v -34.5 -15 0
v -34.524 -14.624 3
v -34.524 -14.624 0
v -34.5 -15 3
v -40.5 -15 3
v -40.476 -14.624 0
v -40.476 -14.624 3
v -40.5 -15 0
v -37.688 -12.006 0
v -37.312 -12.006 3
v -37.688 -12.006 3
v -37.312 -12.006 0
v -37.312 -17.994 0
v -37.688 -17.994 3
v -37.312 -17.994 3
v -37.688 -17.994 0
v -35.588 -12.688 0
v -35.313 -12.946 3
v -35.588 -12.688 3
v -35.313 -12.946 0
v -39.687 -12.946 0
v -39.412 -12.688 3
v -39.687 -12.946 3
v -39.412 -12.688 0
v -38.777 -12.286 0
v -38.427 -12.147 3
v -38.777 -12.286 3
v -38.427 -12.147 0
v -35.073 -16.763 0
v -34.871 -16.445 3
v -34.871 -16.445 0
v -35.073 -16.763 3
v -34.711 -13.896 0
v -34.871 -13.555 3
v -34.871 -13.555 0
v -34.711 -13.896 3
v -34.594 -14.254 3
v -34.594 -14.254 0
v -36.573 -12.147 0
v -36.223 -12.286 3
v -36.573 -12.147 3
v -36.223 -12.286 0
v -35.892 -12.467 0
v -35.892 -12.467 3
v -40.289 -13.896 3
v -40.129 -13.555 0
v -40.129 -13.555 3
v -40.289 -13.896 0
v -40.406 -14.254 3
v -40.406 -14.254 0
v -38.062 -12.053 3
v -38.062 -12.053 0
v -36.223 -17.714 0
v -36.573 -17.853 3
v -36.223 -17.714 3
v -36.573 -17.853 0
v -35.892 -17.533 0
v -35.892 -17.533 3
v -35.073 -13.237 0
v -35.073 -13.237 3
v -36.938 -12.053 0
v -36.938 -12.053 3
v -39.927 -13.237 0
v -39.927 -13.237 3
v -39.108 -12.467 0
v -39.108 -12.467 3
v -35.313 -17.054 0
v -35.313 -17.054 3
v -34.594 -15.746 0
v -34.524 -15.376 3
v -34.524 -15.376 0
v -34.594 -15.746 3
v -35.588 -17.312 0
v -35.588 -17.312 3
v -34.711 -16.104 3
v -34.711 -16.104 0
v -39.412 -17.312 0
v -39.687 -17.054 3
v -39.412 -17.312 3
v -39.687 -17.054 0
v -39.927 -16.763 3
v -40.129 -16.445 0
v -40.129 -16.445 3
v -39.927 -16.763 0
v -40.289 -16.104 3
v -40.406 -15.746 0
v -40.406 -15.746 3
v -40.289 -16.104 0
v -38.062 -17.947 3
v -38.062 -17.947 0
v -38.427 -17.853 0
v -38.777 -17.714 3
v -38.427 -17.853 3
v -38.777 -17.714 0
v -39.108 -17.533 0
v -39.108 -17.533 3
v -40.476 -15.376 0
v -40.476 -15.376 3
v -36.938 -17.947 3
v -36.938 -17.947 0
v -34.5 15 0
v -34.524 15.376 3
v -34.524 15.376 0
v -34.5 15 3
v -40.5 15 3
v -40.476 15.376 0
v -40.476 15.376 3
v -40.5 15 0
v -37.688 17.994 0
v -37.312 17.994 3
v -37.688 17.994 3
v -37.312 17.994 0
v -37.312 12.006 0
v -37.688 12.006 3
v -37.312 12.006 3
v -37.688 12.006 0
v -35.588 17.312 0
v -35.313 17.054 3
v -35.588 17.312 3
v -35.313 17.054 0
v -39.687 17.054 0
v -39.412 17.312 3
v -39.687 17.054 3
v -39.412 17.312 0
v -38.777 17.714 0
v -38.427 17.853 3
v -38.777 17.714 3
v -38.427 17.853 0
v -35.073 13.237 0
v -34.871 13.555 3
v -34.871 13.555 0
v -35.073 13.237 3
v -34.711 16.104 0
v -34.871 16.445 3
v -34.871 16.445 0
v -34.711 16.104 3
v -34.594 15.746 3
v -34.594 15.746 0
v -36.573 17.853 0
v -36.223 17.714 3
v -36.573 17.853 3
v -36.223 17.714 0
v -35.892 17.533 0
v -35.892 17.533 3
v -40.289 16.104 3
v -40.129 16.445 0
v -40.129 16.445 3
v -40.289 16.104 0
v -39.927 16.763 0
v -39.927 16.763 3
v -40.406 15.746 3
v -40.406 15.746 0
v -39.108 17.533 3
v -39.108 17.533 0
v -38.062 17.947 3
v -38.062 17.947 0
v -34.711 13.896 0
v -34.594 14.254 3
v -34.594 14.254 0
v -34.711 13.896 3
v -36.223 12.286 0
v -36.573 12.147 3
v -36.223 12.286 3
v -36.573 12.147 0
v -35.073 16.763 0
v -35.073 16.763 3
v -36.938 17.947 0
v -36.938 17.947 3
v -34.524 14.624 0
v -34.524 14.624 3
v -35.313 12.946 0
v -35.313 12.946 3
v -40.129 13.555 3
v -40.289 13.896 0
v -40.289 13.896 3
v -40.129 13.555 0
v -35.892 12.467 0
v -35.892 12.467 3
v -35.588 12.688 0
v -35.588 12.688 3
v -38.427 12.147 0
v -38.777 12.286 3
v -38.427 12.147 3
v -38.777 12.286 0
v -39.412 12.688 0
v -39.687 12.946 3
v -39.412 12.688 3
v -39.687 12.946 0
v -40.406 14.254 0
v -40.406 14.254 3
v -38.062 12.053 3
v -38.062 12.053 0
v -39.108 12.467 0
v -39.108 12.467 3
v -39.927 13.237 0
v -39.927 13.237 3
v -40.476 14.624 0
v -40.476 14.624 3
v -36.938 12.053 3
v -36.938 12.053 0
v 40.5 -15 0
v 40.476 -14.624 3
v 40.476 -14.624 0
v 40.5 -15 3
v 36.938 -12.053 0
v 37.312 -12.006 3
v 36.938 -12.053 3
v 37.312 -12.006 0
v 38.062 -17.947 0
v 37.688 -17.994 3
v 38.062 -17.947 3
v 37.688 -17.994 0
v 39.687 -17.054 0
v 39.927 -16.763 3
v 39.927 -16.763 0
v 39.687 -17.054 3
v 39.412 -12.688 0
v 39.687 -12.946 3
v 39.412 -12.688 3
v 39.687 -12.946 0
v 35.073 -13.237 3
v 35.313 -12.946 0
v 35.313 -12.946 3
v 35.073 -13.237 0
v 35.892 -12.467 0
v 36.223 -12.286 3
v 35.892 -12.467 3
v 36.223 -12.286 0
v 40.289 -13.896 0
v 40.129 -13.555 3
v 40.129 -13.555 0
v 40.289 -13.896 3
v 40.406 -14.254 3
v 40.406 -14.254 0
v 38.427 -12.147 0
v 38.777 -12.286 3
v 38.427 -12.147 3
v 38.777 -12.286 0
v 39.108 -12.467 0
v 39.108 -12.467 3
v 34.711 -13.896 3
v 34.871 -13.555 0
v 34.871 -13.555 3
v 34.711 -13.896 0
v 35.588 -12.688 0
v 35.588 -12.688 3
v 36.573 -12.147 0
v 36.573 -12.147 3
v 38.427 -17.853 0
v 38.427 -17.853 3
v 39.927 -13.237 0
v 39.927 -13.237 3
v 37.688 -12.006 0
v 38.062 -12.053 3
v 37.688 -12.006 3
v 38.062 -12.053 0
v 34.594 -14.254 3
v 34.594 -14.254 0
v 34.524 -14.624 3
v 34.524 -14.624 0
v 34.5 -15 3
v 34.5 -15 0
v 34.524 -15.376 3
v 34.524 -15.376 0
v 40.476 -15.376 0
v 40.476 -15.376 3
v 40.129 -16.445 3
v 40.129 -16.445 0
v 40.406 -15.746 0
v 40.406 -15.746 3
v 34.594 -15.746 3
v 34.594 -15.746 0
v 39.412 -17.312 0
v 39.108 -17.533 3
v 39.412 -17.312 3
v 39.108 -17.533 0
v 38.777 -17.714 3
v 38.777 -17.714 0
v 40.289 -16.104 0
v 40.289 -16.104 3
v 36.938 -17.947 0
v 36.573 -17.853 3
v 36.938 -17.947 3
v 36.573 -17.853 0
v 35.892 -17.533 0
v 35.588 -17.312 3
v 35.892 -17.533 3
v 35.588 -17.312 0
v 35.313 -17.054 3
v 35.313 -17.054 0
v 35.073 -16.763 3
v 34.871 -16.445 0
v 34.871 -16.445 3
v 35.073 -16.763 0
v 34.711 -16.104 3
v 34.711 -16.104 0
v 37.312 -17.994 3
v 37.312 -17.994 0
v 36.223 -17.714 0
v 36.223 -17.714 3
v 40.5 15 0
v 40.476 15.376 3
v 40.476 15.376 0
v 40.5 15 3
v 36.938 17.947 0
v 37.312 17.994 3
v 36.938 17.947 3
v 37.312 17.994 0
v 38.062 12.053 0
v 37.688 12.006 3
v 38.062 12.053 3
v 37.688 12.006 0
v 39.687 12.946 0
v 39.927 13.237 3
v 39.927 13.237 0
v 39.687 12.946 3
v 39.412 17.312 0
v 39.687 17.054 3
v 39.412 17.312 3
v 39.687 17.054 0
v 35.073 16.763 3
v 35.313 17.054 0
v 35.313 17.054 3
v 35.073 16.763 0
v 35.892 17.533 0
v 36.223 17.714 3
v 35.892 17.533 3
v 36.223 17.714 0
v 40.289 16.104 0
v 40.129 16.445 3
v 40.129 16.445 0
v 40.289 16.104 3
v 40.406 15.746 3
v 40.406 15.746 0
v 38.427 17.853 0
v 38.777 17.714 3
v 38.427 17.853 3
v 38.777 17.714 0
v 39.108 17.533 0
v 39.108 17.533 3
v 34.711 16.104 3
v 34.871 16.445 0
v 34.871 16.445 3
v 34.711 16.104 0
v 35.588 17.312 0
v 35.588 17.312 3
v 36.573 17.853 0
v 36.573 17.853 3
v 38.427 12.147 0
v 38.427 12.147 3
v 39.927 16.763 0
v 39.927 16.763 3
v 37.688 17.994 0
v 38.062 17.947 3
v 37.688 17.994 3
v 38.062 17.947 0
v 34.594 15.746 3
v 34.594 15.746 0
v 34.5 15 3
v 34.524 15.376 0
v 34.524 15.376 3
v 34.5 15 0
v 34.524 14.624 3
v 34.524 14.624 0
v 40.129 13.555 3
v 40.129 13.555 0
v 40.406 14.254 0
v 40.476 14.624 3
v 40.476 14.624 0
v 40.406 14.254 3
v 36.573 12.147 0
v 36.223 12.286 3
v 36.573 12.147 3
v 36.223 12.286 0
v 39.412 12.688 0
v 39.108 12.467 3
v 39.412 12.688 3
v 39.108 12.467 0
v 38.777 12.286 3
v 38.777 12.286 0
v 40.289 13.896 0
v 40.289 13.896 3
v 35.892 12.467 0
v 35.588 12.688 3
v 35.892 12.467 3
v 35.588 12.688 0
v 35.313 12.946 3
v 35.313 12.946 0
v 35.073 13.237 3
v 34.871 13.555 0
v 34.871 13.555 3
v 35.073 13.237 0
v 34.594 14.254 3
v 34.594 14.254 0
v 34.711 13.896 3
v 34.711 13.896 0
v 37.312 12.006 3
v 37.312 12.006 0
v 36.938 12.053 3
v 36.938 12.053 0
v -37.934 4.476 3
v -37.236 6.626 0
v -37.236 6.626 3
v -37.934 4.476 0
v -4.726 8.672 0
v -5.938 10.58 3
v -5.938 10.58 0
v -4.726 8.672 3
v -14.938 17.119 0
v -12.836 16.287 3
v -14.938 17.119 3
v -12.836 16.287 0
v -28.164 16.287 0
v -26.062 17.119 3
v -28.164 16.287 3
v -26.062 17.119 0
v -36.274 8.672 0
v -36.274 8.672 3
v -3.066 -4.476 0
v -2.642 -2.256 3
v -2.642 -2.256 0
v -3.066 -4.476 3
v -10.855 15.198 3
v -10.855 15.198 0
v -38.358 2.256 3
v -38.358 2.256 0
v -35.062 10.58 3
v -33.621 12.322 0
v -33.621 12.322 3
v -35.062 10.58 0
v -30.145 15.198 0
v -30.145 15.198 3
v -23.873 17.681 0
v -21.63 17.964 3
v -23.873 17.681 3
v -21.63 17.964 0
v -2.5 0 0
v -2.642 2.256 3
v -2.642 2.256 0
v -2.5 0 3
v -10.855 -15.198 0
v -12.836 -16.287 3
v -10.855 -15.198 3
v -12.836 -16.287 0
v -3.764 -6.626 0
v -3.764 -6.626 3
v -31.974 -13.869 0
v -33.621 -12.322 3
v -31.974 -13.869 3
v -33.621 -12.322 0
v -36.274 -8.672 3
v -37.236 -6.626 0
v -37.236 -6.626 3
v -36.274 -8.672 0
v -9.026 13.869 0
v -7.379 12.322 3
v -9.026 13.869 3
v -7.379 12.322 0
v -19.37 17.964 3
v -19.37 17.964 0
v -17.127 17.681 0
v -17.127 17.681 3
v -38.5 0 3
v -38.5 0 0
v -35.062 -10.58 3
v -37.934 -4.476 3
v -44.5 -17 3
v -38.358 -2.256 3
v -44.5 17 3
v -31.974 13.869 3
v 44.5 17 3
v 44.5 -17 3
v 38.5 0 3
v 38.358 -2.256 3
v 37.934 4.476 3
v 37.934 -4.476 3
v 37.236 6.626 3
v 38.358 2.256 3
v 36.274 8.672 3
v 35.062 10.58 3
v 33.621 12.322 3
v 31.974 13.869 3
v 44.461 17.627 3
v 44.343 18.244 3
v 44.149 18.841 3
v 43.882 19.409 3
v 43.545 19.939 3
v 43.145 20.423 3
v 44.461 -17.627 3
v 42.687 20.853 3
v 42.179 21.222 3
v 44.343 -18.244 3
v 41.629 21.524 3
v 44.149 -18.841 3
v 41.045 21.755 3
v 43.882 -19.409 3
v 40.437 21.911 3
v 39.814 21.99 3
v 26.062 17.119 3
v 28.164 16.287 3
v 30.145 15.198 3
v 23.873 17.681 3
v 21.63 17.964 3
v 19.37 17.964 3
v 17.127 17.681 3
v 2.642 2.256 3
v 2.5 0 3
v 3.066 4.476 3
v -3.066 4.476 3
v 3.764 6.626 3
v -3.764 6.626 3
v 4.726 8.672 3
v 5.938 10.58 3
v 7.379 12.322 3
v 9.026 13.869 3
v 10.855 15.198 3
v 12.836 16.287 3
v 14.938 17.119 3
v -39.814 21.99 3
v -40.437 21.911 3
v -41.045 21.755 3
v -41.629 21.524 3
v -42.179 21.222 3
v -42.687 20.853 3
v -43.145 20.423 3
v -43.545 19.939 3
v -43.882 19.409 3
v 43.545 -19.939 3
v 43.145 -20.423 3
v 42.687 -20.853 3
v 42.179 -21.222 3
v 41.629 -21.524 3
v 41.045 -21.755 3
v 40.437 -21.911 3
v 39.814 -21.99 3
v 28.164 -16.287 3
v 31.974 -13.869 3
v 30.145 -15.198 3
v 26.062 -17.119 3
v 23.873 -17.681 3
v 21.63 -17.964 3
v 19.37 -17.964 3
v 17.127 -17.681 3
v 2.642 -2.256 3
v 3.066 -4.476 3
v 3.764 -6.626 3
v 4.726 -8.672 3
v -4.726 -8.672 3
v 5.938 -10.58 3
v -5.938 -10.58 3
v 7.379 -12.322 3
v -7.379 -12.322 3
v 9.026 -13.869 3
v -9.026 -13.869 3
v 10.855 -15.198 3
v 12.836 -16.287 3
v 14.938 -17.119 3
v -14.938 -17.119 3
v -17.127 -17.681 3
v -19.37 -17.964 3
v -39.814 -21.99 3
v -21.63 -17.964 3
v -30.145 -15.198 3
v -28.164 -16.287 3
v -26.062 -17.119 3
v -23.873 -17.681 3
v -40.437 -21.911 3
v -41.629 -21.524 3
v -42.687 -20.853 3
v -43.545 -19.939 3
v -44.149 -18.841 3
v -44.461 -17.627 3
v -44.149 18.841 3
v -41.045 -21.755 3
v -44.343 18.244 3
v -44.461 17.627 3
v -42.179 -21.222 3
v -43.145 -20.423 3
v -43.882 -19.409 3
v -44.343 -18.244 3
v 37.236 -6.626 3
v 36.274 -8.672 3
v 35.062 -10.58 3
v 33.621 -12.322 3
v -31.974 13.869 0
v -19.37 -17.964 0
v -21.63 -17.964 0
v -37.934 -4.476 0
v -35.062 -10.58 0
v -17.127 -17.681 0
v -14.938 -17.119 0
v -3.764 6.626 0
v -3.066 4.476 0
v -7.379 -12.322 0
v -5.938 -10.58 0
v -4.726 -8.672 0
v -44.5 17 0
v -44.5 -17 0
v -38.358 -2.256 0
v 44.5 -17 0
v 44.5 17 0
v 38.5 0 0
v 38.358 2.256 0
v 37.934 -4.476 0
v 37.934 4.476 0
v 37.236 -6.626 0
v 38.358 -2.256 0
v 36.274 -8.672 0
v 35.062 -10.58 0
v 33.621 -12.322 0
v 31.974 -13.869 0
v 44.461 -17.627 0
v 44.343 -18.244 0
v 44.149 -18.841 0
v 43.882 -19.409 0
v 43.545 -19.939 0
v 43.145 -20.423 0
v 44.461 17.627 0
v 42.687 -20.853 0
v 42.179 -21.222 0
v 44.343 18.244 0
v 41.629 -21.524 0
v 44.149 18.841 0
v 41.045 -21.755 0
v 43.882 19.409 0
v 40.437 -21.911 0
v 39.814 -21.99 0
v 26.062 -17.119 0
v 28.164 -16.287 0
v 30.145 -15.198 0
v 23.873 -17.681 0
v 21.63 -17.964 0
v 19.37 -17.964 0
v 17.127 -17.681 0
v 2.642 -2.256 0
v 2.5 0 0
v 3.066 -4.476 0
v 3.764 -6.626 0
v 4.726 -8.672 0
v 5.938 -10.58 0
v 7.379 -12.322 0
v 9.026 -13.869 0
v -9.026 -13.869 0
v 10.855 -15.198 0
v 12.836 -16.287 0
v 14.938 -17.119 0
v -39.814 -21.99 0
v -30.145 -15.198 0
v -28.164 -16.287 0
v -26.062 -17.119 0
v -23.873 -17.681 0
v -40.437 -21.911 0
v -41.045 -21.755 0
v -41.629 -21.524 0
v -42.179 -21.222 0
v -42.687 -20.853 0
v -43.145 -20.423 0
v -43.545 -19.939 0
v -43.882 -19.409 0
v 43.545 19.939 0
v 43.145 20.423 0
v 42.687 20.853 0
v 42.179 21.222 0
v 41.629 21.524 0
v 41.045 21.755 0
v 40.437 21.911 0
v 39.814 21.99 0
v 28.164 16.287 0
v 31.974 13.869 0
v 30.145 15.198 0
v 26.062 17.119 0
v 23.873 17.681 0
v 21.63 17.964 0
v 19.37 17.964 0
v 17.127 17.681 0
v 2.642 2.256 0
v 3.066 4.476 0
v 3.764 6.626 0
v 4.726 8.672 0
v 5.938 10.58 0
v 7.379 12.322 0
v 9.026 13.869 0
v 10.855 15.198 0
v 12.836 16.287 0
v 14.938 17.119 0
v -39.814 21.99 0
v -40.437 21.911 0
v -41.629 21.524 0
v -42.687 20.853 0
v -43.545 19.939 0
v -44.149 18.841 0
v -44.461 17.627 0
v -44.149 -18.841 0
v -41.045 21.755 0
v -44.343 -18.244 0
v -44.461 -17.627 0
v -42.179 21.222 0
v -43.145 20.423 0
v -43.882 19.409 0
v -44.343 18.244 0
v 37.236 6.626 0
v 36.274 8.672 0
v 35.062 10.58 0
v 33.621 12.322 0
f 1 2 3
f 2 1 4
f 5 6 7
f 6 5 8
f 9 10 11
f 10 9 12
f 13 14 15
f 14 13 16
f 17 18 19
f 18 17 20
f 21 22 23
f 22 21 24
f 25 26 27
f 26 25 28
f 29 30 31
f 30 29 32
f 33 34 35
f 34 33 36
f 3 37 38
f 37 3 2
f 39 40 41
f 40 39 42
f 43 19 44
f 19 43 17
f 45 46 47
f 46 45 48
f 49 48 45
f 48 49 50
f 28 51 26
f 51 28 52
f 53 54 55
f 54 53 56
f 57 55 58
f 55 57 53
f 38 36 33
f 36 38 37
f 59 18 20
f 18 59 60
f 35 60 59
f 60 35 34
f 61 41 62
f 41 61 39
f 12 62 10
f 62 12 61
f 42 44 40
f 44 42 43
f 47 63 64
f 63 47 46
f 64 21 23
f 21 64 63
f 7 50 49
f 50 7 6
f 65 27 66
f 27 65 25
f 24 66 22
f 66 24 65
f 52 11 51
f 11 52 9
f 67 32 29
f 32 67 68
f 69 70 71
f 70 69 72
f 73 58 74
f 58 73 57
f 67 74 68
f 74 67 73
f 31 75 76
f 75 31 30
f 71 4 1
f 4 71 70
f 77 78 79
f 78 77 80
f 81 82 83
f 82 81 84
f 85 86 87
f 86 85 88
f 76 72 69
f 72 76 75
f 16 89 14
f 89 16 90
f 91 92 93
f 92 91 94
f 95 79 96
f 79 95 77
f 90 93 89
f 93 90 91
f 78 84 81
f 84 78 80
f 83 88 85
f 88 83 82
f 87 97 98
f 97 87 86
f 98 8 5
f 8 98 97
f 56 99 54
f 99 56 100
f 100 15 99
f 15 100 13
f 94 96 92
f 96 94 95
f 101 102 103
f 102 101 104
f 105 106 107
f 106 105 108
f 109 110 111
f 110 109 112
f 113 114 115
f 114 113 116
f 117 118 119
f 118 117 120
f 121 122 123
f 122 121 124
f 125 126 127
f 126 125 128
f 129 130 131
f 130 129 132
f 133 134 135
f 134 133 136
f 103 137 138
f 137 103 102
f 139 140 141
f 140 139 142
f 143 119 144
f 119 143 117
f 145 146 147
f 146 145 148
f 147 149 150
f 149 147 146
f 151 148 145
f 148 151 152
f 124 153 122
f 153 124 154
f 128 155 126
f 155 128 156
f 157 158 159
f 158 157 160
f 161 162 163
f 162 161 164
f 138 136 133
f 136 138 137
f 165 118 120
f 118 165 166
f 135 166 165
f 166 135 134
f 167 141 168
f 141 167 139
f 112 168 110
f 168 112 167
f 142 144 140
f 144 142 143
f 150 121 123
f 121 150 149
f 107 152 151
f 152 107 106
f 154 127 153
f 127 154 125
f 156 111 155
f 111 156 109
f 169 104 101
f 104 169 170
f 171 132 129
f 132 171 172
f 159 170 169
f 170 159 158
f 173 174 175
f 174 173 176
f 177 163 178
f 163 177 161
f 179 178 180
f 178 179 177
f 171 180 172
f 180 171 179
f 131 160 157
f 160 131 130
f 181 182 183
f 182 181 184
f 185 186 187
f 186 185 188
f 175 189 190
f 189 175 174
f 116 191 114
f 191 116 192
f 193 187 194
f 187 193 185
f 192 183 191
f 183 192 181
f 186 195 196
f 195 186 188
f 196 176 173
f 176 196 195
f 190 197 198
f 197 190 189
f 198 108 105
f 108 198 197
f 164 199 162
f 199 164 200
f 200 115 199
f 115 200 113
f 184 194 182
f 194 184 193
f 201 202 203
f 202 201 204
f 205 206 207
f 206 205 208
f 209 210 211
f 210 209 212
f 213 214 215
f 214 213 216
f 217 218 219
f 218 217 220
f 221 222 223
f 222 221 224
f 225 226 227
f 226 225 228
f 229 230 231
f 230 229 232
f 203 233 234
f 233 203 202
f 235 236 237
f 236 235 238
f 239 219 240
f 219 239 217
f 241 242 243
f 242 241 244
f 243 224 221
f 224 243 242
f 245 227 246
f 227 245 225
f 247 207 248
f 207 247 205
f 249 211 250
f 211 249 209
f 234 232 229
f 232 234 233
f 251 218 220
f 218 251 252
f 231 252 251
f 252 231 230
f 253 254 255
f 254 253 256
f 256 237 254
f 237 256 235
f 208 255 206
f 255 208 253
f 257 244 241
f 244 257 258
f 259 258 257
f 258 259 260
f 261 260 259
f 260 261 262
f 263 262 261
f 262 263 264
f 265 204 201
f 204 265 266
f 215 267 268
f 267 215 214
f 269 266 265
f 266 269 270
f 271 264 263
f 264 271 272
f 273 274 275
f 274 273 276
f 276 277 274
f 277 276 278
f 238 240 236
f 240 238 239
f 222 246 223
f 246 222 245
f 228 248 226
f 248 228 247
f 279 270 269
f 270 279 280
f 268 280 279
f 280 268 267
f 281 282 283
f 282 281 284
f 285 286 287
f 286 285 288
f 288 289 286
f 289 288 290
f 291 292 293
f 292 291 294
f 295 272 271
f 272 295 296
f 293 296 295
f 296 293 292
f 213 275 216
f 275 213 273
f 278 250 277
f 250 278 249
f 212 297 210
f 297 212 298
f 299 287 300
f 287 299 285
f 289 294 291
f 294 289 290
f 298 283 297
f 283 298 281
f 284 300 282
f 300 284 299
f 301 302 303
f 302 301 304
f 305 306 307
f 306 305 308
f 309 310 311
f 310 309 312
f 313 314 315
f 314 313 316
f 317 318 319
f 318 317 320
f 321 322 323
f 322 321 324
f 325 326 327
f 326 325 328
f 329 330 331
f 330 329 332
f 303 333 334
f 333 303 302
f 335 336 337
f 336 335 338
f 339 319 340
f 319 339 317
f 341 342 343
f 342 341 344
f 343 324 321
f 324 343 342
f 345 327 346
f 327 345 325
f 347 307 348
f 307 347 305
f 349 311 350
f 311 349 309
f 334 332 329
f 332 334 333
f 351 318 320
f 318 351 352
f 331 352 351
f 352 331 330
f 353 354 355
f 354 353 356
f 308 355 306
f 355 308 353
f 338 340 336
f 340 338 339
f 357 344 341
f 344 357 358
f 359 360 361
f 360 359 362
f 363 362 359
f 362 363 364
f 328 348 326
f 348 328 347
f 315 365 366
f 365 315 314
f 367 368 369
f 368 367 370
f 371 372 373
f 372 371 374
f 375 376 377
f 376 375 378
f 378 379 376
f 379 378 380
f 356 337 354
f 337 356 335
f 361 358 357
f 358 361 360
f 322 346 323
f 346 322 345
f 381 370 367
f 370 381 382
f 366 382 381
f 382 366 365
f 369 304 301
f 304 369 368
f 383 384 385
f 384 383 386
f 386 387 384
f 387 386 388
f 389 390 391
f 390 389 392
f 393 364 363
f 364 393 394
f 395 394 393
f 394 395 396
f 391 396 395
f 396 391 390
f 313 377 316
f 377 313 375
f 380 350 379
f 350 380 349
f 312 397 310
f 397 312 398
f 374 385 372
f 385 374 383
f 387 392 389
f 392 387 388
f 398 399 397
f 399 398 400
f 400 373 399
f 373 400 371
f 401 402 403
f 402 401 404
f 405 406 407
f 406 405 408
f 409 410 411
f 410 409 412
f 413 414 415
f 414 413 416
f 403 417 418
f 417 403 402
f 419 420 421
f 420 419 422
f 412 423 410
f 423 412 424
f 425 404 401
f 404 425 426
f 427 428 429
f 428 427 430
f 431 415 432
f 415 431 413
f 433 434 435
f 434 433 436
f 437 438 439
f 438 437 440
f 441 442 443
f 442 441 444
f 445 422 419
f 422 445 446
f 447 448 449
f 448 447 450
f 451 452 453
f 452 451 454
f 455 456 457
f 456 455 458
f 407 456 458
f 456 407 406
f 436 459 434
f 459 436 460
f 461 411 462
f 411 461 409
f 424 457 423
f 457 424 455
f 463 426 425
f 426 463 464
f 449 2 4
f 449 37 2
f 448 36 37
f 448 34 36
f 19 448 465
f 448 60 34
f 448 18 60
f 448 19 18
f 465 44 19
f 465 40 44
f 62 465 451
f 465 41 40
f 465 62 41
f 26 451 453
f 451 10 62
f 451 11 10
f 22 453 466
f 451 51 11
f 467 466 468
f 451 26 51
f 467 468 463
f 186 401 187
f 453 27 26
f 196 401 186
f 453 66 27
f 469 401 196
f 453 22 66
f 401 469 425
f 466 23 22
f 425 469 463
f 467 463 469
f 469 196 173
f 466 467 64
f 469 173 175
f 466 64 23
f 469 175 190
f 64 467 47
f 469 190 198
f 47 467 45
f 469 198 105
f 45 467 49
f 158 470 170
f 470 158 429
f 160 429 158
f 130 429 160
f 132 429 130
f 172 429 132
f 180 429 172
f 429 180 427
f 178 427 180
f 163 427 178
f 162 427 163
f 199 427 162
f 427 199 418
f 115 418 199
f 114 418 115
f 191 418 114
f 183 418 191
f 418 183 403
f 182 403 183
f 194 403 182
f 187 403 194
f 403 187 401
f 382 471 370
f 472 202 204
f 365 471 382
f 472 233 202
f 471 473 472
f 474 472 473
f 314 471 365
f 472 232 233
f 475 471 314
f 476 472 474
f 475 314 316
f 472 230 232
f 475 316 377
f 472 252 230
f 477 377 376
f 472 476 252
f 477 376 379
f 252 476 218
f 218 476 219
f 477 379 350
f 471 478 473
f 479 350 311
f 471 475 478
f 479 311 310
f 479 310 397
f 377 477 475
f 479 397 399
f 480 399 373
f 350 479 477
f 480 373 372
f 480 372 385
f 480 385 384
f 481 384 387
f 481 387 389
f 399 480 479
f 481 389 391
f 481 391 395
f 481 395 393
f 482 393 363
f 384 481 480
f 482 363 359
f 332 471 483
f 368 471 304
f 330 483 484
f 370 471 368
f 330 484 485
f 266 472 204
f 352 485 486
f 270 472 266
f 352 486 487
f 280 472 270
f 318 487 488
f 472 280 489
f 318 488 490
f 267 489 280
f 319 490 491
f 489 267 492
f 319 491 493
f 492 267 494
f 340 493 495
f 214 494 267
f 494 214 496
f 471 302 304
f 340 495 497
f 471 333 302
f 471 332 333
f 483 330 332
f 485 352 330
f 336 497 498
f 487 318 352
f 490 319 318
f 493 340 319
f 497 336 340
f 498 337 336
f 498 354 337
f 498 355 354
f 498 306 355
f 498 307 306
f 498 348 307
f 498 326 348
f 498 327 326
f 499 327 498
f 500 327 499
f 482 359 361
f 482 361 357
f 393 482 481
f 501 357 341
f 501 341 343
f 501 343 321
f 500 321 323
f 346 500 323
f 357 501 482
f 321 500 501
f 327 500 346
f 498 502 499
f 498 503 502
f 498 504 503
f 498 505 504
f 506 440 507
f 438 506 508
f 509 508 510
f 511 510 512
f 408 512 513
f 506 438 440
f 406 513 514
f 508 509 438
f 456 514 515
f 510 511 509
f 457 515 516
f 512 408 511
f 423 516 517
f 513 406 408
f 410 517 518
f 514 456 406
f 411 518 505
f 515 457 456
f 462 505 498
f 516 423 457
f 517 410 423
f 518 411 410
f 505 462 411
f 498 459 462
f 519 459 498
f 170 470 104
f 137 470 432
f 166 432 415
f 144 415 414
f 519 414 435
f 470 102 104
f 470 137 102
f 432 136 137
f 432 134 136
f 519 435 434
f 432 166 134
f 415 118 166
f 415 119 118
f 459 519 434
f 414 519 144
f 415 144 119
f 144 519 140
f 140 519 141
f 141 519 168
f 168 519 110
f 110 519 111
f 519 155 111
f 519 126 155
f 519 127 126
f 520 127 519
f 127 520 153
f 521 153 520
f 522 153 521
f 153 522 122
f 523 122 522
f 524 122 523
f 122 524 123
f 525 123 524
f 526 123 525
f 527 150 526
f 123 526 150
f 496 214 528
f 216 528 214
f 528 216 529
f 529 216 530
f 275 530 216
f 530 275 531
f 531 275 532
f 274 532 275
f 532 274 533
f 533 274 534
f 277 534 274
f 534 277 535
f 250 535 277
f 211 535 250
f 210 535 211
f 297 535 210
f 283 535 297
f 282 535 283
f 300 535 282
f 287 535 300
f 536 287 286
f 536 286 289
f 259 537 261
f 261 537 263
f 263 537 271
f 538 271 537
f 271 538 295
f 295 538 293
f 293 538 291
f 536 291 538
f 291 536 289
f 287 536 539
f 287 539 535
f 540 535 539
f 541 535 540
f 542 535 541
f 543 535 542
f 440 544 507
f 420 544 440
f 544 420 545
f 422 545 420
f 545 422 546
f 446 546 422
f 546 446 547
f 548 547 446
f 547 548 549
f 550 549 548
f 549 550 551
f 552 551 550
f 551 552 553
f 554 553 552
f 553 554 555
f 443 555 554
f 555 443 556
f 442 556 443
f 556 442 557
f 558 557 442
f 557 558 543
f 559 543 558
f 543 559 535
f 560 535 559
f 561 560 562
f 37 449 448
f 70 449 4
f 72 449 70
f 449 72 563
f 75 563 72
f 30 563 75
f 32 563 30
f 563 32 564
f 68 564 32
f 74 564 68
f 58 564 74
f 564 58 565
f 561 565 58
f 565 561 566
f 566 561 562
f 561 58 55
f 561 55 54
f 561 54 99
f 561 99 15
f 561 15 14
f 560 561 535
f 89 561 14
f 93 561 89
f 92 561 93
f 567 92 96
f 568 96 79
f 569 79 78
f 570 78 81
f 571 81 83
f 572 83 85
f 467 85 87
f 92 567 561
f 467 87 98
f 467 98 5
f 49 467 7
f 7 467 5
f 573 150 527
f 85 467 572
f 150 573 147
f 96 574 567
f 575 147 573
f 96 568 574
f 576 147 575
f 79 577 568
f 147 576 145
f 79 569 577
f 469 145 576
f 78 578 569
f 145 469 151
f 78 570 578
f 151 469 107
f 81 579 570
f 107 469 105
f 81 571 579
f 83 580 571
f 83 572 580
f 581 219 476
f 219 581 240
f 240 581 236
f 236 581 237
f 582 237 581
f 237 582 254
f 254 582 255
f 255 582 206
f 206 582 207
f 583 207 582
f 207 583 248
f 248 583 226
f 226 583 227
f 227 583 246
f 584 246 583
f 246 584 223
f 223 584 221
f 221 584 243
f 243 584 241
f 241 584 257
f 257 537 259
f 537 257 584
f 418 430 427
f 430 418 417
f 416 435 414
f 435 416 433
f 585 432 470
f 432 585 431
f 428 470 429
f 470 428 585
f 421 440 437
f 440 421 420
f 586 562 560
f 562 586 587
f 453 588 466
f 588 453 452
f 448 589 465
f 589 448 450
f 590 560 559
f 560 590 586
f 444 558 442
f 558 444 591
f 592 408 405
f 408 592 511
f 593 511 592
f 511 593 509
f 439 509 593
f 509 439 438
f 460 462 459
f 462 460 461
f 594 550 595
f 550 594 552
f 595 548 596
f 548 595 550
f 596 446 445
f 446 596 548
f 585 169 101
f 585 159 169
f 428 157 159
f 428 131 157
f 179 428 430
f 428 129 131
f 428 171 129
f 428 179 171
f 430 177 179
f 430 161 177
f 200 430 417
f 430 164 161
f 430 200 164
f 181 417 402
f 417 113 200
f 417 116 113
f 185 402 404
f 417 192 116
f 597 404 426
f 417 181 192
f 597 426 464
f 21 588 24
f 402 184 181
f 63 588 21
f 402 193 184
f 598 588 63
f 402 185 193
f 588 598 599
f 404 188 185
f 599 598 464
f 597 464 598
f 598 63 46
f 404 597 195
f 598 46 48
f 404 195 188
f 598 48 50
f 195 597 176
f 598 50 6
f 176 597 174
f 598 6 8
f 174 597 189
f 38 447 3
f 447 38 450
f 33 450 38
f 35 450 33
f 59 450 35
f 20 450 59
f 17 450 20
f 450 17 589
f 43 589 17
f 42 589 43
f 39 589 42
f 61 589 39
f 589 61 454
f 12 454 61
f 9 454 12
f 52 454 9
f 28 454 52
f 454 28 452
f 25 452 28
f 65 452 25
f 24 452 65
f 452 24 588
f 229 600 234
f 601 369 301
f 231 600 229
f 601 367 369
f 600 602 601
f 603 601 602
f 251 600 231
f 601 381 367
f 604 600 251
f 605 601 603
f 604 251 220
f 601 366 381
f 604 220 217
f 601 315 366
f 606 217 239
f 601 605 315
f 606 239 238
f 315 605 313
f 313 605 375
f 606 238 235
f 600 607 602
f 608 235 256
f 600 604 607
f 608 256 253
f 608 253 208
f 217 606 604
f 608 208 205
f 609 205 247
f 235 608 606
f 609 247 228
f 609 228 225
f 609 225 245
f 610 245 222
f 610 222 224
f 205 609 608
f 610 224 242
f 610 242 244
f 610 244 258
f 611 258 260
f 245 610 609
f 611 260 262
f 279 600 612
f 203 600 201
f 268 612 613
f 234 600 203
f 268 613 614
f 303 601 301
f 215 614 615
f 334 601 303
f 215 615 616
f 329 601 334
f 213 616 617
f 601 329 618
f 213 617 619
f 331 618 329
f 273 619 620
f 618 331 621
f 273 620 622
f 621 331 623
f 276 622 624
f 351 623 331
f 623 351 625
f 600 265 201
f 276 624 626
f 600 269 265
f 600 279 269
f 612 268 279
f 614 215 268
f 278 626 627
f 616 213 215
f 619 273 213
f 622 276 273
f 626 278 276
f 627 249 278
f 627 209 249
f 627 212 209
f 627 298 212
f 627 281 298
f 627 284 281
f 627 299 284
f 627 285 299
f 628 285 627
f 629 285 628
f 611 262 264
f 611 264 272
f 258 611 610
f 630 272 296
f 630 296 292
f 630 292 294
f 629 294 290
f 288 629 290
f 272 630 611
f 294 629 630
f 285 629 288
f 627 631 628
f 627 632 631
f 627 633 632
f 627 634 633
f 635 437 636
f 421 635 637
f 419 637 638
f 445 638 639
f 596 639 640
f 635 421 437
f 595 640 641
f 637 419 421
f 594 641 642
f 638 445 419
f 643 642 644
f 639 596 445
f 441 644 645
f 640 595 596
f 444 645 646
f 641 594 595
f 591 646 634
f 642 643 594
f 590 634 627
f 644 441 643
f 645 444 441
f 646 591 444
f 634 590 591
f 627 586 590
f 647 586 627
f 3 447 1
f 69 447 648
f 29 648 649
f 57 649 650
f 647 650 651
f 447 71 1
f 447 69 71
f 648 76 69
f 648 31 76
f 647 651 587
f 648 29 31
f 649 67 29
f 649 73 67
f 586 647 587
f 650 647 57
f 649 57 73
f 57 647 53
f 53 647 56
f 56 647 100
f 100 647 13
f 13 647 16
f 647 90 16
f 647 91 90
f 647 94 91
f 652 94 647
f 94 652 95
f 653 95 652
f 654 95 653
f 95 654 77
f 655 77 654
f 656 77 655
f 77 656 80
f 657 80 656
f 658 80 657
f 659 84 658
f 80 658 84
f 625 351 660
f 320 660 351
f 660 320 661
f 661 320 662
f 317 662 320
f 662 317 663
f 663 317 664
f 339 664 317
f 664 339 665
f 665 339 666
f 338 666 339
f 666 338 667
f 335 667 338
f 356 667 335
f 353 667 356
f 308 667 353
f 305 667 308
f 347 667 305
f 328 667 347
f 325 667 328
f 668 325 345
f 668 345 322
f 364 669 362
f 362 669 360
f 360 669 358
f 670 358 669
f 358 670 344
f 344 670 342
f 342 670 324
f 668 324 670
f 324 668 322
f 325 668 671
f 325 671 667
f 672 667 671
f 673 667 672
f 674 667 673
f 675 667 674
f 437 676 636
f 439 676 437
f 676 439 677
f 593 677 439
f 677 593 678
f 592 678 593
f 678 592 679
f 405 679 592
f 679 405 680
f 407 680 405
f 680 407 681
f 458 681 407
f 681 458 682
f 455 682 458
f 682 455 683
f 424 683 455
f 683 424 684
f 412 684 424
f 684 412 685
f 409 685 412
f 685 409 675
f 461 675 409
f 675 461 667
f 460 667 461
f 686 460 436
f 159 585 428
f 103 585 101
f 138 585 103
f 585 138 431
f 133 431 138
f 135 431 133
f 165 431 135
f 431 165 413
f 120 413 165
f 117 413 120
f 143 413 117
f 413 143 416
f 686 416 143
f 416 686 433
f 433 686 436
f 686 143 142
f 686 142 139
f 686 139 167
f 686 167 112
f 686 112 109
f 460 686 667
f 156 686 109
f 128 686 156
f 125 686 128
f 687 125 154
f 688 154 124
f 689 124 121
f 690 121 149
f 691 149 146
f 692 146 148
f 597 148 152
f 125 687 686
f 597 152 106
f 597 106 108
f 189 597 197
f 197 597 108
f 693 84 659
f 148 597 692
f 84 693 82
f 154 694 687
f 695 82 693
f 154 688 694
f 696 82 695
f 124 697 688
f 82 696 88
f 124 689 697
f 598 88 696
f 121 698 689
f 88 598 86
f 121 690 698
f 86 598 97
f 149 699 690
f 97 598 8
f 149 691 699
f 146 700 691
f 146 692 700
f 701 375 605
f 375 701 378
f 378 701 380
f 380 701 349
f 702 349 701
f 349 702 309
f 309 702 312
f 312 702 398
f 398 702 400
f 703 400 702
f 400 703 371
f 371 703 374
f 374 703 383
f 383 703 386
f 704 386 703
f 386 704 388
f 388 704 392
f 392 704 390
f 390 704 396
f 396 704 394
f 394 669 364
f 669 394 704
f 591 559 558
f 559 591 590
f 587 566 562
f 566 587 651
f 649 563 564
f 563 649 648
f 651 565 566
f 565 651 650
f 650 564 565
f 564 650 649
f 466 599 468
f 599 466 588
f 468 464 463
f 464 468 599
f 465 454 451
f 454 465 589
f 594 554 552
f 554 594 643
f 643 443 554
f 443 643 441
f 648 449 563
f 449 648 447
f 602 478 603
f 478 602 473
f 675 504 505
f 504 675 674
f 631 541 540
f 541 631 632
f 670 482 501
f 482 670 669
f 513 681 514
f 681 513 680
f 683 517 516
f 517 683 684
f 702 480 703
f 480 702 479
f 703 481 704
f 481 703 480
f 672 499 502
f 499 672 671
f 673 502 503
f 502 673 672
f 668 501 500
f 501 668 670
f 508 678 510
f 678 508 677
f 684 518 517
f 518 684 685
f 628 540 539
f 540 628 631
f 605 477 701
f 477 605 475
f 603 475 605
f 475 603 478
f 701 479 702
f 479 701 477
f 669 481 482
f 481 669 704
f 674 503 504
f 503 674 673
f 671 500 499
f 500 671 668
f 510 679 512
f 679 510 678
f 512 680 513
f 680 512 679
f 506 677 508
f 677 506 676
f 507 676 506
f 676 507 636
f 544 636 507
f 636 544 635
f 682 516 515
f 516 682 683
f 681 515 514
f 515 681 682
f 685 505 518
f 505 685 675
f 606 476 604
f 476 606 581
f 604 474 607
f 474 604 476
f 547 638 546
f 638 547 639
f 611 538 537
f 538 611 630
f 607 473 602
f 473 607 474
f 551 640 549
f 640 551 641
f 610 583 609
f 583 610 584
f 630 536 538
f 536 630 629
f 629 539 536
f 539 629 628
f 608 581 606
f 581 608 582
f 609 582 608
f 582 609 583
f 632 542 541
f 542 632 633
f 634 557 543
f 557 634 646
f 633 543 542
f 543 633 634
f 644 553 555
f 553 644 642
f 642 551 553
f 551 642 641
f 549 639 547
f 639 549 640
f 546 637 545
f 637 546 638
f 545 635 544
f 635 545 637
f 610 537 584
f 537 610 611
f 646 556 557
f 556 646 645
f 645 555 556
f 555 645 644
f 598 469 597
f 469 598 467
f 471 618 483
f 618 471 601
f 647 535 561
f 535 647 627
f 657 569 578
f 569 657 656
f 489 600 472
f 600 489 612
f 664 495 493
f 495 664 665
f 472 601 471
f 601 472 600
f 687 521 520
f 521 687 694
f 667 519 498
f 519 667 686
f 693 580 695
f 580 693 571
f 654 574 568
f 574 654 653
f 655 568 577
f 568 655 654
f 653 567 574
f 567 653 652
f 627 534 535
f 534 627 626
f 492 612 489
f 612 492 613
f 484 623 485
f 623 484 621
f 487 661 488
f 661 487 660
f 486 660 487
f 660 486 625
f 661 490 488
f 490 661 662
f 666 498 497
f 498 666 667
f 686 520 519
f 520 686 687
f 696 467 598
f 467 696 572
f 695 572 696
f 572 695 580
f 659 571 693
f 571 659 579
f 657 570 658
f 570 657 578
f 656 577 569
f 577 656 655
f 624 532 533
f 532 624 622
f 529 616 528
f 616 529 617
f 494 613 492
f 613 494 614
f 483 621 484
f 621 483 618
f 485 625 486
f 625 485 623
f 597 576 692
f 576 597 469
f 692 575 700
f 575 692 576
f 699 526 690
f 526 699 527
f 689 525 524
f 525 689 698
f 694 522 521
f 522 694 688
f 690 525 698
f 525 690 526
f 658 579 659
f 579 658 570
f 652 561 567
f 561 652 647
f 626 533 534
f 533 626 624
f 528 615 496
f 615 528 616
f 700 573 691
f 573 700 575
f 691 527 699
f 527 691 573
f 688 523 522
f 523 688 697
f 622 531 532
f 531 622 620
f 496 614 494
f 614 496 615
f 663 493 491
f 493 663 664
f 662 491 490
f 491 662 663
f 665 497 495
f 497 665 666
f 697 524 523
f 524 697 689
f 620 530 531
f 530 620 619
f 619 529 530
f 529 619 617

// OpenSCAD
$fn = 50;


difference() {
	union() {
		hull() {
			translate(v = [-39.5000000000, 17.0000000000, 0]) {
				cylinder(h = 3, r = 5);
			}
			translate(v = [39.5000000000, 17.0000000000, 0]) {
				cylinder(h = 3, r = 5);
			}
			translate(v = [-39.5000000000, -17.0000000000, 0]) {
				cylinder(h = 3, r = 5);
			}
			translate(v = [39.5000000000, -17.0000000000, 0]) {
				cylinder(h = 3, r = 5);
			}
		}
	}
	union() {
		#translate(v = [-37.5000000000, -15.0000000000, -100.0000000000]) {
			cylinder(h = 200, r = 3.0000000000);
		}
		#translate(v = [-37.5000000000, 15.0000000000, -100.0000000000]) {
			cylinder(h = 200, r = 3.0000000000);
		}
		#translate(v = [37.5000000000, -15.0000000000, -100.0000000000]) {
			cylinder(h = 200, r = 3.0000000000);
		}
		#translate(v = [37.5000000000, 15.0000000000, -100.0000000000]) {
			cylinder(h = 200, r = 3.0000000000);
		}
		#translate(v = [-20.5000000000, 0, 0]) {
			cylinder(h = 3, r = 18.0000000000);
		}
		#translate(v = [20.5000000000, 0, 0]) {
			cylinder(h = 3, r = 18.0000000000);
		}
	}
}
